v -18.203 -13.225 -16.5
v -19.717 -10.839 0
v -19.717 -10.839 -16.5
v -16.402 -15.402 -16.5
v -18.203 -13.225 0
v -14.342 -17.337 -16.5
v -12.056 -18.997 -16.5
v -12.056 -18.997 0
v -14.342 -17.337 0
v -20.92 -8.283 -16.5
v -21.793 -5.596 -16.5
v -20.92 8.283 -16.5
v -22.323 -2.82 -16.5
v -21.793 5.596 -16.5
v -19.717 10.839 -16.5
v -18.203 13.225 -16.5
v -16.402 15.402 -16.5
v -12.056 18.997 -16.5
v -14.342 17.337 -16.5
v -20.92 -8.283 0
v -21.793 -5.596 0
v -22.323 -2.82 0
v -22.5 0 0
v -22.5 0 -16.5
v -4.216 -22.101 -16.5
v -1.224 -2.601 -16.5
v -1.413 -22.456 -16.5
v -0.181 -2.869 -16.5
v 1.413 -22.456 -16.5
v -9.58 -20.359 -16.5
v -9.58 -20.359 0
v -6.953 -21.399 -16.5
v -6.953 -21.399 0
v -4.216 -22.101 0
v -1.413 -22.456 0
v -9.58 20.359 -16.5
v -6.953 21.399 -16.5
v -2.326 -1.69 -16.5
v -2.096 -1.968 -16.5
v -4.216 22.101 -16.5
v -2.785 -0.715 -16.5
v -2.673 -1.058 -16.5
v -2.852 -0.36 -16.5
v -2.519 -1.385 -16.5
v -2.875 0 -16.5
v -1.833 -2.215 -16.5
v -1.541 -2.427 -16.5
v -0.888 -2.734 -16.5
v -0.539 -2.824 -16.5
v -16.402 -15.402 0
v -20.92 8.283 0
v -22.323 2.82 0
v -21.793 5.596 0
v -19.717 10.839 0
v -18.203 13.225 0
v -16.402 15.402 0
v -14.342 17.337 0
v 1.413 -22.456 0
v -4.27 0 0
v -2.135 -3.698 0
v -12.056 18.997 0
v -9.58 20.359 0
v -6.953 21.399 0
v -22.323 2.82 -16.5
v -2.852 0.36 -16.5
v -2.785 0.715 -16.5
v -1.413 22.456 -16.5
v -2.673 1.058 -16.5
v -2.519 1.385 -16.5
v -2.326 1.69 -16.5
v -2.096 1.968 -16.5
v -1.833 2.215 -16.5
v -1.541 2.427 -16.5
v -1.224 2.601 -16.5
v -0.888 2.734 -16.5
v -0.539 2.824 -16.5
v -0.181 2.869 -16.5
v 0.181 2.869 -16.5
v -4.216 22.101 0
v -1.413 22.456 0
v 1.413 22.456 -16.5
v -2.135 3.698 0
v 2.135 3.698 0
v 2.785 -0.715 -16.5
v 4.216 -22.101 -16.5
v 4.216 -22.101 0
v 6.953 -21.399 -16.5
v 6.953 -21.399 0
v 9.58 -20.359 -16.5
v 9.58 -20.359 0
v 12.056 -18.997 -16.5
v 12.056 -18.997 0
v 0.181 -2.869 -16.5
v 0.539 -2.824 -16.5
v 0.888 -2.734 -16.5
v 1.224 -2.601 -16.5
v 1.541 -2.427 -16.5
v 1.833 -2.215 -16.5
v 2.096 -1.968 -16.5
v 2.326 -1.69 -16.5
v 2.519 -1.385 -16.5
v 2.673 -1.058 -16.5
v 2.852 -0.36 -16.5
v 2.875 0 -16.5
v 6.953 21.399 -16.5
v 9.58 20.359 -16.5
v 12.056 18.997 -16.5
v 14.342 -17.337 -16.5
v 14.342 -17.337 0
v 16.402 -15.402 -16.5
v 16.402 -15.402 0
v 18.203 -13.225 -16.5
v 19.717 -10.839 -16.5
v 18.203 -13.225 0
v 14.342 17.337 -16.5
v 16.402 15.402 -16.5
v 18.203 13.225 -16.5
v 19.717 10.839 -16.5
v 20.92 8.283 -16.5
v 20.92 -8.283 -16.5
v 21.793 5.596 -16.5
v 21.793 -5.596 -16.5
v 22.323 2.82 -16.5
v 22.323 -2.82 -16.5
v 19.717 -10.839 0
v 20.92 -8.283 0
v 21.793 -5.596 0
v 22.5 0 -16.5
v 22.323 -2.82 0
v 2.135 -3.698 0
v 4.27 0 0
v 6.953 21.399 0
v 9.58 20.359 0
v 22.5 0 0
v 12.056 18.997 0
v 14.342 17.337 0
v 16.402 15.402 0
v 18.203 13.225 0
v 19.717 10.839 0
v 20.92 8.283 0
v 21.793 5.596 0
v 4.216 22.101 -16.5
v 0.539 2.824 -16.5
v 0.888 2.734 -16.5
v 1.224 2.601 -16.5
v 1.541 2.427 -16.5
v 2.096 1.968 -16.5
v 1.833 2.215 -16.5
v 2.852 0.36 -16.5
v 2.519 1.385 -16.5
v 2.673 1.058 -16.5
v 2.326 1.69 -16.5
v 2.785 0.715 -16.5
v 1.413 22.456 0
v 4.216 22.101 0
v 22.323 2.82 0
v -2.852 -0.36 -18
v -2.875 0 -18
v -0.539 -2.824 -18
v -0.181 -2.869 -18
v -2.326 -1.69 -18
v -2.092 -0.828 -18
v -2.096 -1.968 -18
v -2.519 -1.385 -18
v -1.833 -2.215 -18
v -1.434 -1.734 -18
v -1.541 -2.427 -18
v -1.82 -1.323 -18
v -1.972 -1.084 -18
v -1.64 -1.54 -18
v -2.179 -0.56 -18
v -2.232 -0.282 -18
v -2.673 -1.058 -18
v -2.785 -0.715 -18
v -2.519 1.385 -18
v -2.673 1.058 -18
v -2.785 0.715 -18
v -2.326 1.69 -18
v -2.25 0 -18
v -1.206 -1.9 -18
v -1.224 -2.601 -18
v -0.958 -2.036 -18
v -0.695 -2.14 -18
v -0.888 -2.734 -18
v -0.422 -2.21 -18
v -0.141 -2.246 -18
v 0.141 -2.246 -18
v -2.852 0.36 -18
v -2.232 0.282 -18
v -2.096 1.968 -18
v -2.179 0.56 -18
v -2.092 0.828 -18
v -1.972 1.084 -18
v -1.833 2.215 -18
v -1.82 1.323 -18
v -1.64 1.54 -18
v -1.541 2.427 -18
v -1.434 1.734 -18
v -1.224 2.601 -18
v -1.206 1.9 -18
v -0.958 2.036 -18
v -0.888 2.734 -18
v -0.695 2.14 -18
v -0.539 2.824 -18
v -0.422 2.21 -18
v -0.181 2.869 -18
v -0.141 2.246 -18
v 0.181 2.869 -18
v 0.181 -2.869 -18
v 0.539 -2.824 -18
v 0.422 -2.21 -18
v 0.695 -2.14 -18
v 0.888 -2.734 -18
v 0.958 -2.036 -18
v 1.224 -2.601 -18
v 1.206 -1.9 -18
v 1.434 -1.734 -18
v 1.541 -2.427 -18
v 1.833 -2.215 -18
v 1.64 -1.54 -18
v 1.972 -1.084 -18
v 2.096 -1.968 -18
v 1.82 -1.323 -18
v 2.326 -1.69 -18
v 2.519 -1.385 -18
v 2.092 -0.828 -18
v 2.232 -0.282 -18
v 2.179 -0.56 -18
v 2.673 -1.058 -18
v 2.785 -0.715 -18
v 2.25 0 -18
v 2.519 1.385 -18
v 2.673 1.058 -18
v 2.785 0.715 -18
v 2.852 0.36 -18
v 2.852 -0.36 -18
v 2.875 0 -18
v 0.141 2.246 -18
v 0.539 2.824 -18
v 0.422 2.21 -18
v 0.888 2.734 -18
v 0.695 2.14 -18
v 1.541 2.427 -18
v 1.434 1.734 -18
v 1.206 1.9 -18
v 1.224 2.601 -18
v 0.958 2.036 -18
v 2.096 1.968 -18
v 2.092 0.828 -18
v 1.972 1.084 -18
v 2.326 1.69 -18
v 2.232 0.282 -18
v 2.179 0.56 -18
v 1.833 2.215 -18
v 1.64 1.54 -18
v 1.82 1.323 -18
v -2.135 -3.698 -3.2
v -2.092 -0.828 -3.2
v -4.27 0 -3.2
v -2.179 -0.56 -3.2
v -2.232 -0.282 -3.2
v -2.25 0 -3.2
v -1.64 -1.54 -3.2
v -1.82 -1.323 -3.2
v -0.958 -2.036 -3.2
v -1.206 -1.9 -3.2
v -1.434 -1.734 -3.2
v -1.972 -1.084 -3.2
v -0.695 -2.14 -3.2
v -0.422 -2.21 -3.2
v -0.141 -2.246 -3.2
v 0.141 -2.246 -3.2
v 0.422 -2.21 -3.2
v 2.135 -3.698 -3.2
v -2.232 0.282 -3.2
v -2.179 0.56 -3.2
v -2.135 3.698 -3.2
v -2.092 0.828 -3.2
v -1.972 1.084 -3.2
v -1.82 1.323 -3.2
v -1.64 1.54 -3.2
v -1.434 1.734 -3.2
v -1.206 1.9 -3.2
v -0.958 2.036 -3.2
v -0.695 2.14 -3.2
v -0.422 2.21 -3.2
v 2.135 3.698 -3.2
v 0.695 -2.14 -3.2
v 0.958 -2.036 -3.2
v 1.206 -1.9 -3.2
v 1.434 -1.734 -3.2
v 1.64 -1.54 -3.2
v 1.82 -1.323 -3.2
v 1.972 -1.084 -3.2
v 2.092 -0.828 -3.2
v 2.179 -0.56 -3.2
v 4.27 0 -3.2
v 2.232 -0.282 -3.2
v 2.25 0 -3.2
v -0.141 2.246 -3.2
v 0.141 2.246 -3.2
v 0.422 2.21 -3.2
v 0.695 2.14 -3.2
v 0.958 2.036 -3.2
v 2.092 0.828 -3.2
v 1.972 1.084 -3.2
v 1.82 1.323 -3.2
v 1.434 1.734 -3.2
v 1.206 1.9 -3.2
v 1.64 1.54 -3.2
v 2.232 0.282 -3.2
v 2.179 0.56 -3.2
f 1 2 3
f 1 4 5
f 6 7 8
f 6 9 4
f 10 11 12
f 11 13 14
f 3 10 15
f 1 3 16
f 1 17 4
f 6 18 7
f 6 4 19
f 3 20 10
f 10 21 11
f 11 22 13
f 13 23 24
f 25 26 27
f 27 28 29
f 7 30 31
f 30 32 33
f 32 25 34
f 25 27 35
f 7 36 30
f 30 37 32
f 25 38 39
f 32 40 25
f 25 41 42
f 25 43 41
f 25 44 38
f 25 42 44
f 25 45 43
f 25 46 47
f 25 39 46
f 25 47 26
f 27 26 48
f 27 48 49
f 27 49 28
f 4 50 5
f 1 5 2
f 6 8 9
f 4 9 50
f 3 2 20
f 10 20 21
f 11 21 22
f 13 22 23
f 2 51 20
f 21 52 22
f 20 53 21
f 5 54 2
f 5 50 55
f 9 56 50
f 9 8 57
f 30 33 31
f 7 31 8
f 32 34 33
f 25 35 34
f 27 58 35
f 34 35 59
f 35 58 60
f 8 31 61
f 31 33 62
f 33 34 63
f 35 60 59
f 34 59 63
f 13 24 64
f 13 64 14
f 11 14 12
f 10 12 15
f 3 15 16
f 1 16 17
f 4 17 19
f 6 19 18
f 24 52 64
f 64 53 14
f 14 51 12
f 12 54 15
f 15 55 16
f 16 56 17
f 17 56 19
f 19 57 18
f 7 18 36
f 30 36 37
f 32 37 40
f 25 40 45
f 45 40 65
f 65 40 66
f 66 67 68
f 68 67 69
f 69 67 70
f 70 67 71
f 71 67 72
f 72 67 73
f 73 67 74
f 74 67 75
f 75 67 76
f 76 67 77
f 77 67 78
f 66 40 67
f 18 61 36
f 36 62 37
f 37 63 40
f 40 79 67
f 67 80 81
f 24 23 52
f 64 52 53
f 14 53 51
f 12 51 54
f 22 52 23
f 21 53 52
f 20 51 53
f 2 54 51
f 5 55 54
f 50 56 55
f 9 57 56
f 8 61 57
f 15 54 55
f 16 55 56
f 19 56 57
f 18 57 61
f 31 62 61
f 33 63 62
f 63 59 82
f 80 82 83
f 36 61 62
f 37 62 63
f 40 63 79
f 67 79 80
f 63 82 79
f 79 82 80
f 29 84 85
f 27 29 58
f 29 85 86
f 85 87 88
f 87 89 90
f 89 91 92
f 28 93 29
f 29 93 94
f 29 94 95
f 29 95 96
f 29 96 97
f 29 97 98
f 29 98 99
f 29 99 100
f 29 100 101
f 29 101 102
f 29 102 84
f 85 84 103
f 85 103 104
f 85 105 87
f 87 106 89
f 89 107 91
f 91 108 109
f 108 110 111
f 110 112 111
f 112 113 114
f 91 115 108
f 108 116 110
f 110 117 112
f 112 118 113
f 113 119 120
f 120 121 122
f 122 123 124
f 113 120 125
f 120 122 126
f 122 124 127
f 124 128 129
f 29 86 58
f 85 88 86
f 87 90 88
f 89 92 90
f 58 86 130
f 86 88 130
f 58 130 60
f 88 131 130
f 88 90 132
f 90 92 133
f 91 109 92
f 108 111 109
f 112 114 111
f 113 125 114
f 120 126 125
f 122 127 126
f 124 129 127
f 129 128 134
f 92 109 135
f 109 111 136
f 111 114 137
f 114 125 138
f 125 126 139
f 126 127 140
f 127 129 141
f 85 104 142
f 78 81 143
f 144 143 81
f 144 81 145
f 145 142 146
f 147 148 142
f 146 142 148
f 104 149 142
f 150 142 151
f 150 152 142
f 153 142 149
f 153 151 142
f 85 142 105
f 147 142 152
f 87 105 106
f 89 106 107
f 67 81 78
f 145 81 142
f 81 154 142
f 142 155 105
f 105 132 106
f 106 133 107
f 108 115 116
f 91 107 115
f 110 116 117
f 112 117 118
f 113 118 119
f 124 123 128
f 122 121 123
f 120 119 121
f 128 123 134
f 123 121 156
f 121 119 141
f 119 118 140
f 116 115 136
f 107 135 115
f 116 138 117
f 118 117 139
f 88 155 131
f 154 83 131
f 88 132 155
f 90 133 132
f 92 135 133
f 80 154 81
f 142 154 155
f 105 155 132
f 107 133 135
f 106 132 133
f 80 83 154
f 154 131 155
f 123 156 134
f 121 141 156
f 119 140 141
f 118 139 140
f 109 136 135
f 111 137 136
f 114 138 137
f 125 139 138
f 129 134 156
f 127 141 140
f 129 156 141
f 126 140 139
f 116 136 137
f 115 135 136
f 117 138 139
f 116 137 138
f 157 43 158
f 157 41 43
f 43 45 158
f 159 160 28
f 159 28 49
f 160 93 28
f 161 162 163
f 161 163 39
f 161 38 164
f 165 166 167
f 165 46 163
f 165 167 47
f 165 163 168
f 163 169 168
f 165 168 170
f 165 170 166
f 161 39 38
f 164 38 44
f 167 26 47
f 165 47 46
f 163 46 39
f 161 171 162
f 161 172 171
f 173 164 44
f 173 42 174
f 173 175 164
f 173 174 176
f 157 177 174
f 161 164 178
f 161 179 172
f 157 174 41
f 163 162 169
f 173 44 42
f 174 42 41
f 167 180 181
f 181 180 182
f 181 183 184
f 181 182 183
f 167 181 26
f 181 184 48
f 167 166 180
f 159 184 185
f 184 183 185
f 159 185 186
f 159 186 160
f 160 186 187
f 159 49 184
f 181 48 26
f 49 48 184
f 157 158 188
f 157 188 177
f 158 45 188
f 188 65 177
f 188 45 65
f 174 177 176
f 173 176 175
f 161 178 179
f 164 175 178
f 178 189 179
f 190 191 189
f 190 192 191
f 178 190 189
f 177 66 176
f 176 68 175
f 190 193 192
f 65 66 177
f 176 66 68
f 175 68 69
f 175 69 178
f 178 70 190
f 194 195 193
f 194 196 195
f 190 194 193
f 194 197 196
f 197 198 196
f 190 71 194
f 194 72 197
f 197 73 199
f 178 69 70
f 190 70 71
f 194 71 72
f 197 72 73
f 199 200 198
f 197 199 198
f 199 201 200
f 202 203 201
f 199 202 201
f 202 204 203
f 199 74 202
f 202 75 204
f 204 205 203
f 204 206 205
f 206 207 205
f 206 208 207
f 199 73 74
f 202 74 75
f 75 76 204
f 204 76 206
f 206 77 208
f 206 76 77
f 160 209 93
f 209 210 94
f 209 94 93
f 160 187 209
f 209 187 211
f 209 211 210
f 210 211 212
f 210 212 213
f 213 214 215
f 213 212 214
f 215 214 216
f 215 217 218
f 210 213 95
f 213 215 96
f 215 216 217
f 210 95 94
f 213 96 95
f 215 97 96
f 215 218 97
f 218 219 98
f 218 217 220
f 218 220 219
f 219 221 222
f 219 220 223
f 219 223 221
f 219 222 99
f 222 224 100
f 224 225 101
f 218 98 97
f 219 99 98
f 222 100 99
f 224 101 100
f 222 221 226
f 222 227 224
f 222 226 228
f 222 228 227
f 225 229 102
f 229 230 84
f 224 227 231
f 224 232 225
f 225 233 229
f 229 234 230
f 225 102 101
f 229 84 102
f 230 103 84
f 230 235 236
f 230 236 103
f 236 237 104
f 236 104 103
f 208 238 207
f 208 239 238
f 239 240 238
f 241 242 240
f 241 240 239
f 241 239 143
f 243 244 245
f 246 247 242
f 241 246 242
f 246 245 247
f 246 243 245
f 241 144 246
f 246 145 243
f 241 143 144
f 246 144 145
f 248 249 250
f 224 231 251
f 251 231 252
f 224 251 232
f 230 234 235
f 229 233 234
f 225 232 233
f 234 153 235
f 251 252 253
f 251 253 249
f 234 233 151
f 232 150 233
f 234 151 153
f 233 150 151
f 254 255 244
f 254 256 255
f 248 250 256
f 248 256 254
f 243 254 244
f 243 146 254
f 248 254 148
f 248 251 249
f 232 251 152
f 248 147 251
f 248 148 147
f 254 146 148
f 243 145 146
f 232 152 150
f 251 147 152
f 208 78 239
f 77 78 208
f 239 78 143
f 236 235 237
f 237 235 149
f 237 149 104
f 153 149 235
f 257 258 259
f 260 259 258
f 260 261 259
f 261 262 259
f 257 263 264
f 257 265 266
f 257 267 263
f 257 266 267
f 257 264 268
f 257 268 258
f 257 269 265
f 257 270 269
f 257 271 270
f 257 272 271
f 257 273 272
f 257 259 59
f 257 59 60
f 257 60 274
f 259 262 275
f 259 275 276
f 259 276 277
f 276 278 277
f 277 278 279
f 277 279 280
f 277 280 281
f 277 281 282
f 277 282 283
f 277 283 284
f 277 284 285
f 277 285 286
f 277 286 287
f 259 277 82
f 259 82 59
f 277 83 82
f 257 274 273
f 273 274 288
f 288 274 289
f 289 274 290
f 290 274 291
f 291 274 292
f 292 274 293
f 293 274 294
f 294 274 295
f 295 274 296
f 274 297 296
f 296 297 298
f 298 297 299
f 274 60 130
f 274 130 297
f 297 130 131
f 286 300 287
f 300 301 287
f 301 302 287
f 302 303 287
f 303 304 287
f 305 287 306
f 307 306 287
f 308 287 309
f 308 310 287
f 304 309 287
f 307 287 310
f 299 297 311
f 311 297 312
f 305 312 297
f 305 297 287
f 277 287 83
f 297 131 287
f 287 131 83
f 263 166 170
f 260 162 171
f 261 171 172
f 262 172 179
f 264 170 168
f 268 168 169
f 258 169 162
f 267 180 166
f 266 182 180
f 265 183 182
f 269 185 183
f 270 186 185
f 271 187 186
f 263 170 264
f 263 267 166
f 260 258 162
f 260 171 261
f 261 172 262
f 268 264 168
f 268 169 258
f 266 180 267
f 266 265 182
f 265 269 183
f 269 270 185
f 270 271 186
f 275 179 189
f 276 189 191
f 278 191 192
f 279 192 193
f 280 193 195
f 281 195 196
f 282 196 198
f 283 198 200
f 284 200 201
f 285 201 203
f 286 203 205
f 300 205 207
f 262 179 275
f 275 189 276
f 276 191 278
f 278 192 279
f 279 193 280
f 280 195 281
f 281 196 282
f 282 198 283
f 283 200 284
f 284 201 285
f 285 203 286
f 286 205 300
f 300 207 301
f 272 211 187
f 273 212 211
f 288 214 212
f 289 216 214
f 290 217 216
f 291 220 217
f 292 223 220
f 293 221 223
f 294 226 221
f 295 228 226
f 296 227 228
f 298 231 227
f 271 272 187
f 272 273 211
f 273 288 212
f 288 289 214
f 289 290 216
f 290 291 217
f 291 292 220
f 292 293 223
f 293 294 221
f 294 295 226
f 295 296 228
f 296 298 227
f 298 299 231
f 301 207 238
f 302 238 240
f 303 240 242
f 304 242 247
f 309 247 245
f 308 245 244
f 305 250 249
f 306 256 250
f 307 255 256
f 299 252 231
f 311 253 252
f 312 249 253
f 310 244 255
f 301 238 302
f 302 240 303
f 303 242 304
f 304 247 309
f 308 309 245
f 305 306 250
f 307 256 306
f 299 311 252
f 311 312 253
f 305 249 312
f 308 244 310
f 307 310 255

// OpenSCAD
$fn = 50;

difference() {
	union() {
		translate(v = [0, 0, -16.5]) {
			cylinder(h = 16.5, r = 22.5);
		}
		#translate(v = [0, 0, -18.0]) {
			cylinder(h = 18, r = 2.875);
		}
	}
	union() {
		translate(v = [0, 0, 0]) {
			rotate(a = [0, 0, 0]) {
				difference() {
					union() {
						translate(v = [0, 0, -3.2]) {
							linear_extrude(height = 3.2) {
								polygon(points = [[4.2698, 0.0], [2.1349000000000005, 3.697755269078796], [-2.134899999999999, 3.6977552690787965], [-4.2698, 5.228996902999369e-16], [-2.134900000000002, -3.6977552690787956], [2.1348999999999974, -3.697755269078798]]);
							}
						}
					}
					union();
				}
			}
		}
		#translate(v = [0, 0, -100.0]) {
			cylinder(h = 200, r = 2.25);
		}
	}
}
